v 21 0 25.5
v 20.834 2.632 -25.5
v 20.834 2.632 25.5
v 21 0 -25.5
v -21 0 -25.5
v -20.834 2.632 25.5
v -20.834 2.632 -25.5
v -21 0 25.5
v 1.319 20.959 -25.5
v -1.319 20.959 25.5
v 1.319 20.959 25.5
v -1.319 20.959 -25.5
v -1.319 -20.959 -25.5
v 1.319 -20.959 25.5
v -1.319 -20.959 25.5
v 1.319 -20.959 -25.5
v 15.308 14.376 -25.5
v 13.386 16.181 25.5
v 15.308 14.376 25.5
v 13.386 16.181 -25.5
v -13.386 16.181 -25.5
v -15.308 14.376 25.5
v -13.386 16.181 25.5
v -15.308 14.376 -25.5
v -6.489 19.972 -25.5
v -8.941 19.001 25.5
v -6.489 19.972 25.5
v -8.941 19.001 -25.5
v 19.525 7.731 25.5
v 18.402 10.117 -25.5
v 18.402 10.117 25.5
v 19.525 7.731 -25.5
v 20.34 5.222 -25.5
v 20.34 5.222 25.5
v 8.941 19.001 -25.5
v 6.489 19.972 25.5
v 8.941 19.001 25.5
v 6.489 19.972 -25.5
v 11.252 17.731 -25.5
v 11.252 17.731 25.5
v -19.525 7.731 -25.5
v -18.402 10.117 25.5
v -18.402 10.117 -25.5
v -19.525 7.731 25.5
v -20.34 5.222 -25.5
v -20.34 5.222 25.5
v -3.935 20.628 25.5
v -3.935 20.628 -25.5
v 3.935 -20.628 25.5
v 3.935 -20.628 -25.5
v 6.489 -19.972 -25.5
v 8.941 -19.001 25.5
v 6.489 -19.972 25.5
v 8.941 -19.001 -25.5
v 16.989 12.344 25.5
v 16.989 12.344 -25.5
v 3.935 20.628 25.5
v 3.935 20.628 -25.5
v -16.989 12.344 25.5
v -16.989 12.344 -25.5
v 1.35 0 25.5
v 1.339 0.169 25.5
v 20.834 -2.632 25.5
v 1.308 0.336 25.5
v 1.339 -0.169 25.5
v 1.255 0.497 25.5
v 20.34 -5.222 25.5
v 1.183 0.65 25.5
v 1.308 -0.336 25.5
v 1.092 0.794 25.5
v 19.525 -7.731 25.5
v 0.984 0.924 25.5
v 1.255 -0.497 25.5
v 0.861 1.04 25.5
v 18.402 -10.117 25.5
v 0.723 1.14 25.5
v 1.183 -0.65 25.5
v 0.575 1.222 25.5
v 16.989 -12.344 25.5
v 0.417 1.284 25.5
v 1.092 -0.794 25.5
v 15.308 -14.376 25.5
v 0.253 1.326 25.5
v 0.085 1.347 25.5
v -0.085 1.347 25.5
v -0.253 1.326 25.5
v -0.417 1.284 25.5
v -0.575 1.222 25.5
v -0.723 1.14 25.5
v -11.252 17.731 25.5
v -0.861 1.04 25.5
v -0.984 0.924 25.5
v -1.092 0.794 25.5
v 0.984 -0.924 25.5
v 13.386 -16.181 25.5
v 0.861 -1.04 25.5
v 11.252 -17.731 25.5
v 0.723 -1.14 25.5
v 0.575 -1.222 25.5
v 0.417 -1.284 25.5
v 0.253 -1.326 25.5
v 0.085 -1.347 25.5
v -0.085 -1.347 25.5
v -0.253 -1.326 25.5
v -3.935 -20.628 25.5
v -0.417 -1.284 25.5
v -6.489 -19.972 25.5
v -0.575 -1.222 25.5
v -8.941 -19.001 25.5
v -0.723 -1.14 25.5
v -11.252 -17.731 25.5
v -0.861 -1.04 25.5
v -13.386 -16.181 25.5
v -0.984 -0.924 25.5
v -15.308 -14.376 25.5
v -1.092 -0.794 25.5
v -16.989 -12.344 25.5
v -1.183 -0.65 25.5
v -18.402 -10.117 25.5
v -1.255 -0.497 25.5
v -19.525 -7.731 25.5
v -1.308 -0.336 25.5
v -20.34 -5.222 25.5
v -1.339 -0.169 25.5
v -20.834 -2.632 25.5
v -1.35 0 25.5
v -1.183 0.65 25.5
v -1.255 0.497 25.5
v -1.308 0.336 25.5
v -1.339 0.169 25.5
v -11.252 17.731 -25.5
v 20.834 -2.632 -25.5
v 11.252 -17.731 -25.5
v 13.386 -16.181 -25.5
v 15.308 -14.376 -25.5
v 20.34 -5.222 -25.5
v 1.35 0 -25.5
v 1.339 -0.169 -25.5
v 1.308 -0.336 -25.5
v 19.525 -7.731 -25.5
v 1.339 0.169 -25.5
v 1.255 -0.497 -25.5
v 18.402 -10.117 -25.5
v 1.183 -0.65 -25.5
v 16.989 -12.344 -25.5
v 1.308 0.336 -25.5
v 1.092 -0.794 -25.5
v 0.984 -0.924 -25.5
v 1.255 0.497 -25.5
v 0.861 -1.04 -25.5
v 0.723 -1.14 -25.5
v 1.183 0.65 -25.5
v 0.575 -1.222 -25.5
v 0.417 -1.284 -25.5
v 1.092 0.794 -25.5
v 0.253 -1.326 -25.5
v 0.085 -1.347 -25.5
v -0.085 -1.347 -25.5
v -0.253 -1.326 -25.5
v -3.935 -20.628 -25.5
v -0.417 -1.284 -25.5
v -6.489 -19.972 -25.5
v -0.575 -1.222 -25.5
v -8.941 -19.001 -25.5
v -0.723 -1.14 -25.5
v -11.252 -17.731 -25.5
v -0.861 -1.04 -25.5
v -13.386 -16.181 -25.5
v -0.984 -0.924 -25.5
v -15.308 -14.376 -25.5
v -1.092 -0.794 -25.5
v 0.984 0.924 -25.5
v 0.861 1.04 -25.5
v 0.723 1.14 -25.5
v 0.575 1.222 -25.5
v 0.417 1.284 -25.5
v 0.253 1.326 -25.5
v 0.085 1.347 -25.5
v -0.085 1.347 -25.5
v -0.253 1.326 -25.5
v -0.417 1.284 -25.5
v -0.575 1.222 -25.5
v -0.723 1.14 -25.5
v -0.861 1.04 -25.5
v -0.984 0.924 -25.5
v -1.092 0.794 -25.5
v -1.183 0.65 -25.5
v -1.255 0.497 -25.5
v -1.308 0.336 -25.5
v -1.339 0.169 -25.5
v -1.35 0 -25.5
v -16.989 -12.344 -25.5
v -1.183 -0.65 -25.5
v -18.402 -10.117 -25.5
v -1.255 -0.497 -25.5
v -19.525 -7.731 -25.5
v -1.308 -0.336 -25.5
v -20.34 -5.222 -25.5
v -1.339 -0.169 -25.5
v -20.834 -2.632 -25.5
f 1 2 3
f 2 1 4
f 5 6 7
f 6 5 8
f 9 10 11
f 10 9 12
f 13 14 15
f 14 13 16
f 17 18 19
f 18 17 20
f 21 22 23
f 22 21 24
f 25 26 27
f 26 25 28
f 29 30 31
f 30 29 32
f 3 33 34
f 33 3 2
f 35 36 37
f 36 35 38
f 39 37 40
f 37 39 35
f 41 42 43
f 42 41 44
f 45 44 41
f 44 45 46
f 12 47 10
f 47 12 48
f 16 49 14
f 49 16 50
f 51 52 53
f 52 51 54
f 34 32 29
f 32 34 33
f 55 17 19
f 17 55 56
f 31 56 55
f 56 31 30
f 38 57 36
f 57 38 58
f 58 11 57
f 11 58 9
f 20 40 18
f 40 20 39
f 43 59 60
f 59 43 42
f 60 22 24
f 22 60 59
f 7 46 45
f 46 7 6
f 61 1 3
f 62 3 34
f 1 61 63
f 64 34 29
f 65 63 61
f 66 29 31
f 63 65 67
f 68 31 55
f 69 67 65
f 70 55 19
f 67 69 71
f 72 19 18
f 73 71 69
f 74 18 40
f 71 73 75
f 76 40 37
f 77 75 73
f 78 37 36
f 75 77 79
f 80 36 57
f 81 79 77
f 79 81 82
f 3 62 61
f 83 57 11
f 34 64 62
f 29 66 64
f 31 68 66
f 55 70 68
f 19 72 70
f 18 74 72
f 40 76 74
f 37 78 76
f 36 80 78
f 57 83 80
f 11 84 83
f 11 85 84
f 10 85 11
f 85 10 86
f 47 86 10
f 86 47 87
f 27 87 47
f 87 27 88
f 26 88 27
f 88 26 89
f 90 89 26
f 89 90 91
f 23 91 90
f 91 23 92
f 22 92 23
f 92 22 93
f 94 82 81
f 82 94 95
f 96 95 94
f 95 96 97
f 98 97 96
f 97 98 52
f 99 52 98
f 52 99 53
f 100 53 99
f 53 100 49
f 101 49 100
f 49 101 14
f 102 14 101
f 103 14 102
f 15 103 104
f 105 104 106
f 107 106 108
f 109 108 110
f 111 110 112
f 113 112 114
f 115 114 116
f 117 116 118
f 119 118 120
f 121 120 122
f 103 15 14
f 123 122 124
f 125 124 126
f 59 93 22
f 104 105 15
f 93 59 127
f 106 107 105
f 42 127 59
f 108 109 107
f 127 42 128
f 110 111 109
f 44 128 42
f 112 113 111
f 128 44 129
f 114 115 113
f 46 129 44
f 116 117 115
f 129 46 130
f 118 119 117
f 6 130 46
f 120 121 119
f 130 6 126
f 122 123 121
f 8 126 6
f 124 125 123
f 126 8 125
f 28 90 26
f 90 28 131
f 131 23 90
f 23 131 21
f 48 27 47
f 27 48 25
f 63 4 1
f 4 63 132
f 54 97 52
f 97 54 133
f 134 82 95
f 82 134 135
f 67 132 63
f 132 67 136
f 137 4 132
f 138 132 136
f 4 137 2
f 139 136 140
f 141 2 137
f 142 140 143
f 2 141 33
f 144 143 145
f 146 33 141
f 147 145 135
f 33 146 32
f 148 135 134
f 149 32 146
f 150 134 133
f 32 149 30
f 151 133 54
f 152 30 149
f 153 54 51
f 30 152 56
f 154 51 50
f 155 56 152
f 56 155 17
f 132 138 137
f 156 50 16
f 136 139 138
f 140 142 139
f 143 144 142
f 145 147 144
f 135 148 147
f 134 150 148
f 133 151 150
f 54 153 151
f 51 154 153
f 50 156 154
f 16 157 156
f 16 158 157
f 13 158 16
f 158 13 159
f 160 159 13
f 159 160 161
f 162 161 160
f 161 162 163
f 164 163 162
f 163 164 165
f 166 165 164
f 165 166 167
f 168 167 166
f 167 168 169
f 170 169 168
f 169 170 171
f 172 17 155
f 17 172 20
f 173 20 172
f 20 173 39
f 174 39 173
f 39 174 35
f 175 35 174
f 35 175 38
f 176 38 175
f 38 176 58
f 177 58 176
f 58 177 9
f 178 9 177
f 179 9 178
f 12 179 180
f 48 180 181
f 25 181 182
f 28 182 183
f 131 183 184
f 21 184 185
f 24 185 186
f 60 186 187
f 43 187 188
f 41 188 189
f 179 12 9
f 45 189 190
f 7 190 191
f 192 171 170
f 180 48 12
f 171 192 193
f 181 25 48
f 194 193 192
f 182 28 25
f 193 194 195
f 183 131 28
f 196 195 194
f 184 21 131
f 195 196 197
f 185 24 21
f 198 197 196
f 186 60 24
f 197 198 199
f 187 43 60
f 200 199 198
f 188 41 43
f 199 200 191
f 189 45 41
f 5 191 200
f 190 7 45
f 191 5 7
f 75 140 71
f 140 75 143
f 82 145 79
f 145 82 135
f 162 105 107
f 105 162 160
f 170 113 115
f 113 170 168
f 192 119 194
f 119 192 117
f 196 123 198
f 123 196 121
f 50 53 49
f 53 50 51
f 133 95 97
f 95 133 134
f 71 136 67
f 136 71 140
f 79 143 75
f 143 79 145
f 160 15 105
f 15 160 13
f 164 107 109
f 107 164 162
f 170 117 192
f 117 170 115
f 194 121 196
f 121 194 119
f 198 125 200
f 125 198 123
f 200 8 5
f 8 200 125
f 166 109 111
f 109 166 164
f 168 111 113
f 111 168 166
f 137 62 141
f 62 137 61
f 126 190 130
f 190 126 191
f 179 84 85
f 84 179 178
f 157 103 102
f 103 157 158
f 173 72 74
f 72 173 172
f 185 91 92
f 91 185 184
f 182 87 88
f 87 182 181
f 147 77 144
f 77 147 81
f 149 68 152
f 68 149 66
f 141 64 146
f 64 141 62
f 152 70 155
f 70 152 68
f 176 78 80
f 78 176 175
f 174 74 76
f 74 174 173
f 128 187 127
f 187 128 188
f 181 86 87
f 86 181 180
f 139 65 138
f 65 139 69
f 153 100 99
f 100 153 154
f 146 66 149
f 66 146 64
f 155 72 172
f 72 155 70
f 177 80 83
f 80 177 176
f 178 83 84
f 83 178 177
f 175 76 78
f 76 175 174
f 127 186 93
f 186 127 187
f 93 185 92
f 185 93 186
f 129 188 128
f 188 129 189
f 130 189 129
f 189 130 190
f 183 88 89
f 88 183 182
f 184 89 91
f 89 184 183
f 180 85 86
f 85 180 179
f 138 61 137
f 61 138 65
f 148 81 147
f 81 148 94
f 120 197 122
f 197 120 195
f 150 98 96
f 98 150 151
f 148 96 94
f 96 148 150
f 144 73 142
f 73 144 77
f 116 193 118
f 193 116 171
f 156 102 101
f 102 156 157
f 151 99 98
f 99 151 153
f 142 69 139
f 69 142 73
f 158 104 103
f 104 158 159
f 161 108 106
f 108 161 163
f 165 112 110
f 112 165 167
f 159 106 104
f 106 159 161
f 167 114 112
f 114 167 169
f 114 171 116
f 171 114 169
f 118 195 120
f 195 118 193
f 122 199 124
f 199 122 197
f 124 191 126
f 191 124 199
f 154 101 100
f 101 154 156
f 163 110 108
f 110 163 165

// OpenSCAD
$fn = 50;


difference() {
	union() {
		translate(v = [0, 0, -25.5000000000]) {
			cylinder(h = 51, r = 21.0000000000);
		}
	}
	union() {
		translate(v = [0, 0, -100.0000000000]) {
			cylinder(h = 200, r = 1.3500000000);
		}
	}
}
